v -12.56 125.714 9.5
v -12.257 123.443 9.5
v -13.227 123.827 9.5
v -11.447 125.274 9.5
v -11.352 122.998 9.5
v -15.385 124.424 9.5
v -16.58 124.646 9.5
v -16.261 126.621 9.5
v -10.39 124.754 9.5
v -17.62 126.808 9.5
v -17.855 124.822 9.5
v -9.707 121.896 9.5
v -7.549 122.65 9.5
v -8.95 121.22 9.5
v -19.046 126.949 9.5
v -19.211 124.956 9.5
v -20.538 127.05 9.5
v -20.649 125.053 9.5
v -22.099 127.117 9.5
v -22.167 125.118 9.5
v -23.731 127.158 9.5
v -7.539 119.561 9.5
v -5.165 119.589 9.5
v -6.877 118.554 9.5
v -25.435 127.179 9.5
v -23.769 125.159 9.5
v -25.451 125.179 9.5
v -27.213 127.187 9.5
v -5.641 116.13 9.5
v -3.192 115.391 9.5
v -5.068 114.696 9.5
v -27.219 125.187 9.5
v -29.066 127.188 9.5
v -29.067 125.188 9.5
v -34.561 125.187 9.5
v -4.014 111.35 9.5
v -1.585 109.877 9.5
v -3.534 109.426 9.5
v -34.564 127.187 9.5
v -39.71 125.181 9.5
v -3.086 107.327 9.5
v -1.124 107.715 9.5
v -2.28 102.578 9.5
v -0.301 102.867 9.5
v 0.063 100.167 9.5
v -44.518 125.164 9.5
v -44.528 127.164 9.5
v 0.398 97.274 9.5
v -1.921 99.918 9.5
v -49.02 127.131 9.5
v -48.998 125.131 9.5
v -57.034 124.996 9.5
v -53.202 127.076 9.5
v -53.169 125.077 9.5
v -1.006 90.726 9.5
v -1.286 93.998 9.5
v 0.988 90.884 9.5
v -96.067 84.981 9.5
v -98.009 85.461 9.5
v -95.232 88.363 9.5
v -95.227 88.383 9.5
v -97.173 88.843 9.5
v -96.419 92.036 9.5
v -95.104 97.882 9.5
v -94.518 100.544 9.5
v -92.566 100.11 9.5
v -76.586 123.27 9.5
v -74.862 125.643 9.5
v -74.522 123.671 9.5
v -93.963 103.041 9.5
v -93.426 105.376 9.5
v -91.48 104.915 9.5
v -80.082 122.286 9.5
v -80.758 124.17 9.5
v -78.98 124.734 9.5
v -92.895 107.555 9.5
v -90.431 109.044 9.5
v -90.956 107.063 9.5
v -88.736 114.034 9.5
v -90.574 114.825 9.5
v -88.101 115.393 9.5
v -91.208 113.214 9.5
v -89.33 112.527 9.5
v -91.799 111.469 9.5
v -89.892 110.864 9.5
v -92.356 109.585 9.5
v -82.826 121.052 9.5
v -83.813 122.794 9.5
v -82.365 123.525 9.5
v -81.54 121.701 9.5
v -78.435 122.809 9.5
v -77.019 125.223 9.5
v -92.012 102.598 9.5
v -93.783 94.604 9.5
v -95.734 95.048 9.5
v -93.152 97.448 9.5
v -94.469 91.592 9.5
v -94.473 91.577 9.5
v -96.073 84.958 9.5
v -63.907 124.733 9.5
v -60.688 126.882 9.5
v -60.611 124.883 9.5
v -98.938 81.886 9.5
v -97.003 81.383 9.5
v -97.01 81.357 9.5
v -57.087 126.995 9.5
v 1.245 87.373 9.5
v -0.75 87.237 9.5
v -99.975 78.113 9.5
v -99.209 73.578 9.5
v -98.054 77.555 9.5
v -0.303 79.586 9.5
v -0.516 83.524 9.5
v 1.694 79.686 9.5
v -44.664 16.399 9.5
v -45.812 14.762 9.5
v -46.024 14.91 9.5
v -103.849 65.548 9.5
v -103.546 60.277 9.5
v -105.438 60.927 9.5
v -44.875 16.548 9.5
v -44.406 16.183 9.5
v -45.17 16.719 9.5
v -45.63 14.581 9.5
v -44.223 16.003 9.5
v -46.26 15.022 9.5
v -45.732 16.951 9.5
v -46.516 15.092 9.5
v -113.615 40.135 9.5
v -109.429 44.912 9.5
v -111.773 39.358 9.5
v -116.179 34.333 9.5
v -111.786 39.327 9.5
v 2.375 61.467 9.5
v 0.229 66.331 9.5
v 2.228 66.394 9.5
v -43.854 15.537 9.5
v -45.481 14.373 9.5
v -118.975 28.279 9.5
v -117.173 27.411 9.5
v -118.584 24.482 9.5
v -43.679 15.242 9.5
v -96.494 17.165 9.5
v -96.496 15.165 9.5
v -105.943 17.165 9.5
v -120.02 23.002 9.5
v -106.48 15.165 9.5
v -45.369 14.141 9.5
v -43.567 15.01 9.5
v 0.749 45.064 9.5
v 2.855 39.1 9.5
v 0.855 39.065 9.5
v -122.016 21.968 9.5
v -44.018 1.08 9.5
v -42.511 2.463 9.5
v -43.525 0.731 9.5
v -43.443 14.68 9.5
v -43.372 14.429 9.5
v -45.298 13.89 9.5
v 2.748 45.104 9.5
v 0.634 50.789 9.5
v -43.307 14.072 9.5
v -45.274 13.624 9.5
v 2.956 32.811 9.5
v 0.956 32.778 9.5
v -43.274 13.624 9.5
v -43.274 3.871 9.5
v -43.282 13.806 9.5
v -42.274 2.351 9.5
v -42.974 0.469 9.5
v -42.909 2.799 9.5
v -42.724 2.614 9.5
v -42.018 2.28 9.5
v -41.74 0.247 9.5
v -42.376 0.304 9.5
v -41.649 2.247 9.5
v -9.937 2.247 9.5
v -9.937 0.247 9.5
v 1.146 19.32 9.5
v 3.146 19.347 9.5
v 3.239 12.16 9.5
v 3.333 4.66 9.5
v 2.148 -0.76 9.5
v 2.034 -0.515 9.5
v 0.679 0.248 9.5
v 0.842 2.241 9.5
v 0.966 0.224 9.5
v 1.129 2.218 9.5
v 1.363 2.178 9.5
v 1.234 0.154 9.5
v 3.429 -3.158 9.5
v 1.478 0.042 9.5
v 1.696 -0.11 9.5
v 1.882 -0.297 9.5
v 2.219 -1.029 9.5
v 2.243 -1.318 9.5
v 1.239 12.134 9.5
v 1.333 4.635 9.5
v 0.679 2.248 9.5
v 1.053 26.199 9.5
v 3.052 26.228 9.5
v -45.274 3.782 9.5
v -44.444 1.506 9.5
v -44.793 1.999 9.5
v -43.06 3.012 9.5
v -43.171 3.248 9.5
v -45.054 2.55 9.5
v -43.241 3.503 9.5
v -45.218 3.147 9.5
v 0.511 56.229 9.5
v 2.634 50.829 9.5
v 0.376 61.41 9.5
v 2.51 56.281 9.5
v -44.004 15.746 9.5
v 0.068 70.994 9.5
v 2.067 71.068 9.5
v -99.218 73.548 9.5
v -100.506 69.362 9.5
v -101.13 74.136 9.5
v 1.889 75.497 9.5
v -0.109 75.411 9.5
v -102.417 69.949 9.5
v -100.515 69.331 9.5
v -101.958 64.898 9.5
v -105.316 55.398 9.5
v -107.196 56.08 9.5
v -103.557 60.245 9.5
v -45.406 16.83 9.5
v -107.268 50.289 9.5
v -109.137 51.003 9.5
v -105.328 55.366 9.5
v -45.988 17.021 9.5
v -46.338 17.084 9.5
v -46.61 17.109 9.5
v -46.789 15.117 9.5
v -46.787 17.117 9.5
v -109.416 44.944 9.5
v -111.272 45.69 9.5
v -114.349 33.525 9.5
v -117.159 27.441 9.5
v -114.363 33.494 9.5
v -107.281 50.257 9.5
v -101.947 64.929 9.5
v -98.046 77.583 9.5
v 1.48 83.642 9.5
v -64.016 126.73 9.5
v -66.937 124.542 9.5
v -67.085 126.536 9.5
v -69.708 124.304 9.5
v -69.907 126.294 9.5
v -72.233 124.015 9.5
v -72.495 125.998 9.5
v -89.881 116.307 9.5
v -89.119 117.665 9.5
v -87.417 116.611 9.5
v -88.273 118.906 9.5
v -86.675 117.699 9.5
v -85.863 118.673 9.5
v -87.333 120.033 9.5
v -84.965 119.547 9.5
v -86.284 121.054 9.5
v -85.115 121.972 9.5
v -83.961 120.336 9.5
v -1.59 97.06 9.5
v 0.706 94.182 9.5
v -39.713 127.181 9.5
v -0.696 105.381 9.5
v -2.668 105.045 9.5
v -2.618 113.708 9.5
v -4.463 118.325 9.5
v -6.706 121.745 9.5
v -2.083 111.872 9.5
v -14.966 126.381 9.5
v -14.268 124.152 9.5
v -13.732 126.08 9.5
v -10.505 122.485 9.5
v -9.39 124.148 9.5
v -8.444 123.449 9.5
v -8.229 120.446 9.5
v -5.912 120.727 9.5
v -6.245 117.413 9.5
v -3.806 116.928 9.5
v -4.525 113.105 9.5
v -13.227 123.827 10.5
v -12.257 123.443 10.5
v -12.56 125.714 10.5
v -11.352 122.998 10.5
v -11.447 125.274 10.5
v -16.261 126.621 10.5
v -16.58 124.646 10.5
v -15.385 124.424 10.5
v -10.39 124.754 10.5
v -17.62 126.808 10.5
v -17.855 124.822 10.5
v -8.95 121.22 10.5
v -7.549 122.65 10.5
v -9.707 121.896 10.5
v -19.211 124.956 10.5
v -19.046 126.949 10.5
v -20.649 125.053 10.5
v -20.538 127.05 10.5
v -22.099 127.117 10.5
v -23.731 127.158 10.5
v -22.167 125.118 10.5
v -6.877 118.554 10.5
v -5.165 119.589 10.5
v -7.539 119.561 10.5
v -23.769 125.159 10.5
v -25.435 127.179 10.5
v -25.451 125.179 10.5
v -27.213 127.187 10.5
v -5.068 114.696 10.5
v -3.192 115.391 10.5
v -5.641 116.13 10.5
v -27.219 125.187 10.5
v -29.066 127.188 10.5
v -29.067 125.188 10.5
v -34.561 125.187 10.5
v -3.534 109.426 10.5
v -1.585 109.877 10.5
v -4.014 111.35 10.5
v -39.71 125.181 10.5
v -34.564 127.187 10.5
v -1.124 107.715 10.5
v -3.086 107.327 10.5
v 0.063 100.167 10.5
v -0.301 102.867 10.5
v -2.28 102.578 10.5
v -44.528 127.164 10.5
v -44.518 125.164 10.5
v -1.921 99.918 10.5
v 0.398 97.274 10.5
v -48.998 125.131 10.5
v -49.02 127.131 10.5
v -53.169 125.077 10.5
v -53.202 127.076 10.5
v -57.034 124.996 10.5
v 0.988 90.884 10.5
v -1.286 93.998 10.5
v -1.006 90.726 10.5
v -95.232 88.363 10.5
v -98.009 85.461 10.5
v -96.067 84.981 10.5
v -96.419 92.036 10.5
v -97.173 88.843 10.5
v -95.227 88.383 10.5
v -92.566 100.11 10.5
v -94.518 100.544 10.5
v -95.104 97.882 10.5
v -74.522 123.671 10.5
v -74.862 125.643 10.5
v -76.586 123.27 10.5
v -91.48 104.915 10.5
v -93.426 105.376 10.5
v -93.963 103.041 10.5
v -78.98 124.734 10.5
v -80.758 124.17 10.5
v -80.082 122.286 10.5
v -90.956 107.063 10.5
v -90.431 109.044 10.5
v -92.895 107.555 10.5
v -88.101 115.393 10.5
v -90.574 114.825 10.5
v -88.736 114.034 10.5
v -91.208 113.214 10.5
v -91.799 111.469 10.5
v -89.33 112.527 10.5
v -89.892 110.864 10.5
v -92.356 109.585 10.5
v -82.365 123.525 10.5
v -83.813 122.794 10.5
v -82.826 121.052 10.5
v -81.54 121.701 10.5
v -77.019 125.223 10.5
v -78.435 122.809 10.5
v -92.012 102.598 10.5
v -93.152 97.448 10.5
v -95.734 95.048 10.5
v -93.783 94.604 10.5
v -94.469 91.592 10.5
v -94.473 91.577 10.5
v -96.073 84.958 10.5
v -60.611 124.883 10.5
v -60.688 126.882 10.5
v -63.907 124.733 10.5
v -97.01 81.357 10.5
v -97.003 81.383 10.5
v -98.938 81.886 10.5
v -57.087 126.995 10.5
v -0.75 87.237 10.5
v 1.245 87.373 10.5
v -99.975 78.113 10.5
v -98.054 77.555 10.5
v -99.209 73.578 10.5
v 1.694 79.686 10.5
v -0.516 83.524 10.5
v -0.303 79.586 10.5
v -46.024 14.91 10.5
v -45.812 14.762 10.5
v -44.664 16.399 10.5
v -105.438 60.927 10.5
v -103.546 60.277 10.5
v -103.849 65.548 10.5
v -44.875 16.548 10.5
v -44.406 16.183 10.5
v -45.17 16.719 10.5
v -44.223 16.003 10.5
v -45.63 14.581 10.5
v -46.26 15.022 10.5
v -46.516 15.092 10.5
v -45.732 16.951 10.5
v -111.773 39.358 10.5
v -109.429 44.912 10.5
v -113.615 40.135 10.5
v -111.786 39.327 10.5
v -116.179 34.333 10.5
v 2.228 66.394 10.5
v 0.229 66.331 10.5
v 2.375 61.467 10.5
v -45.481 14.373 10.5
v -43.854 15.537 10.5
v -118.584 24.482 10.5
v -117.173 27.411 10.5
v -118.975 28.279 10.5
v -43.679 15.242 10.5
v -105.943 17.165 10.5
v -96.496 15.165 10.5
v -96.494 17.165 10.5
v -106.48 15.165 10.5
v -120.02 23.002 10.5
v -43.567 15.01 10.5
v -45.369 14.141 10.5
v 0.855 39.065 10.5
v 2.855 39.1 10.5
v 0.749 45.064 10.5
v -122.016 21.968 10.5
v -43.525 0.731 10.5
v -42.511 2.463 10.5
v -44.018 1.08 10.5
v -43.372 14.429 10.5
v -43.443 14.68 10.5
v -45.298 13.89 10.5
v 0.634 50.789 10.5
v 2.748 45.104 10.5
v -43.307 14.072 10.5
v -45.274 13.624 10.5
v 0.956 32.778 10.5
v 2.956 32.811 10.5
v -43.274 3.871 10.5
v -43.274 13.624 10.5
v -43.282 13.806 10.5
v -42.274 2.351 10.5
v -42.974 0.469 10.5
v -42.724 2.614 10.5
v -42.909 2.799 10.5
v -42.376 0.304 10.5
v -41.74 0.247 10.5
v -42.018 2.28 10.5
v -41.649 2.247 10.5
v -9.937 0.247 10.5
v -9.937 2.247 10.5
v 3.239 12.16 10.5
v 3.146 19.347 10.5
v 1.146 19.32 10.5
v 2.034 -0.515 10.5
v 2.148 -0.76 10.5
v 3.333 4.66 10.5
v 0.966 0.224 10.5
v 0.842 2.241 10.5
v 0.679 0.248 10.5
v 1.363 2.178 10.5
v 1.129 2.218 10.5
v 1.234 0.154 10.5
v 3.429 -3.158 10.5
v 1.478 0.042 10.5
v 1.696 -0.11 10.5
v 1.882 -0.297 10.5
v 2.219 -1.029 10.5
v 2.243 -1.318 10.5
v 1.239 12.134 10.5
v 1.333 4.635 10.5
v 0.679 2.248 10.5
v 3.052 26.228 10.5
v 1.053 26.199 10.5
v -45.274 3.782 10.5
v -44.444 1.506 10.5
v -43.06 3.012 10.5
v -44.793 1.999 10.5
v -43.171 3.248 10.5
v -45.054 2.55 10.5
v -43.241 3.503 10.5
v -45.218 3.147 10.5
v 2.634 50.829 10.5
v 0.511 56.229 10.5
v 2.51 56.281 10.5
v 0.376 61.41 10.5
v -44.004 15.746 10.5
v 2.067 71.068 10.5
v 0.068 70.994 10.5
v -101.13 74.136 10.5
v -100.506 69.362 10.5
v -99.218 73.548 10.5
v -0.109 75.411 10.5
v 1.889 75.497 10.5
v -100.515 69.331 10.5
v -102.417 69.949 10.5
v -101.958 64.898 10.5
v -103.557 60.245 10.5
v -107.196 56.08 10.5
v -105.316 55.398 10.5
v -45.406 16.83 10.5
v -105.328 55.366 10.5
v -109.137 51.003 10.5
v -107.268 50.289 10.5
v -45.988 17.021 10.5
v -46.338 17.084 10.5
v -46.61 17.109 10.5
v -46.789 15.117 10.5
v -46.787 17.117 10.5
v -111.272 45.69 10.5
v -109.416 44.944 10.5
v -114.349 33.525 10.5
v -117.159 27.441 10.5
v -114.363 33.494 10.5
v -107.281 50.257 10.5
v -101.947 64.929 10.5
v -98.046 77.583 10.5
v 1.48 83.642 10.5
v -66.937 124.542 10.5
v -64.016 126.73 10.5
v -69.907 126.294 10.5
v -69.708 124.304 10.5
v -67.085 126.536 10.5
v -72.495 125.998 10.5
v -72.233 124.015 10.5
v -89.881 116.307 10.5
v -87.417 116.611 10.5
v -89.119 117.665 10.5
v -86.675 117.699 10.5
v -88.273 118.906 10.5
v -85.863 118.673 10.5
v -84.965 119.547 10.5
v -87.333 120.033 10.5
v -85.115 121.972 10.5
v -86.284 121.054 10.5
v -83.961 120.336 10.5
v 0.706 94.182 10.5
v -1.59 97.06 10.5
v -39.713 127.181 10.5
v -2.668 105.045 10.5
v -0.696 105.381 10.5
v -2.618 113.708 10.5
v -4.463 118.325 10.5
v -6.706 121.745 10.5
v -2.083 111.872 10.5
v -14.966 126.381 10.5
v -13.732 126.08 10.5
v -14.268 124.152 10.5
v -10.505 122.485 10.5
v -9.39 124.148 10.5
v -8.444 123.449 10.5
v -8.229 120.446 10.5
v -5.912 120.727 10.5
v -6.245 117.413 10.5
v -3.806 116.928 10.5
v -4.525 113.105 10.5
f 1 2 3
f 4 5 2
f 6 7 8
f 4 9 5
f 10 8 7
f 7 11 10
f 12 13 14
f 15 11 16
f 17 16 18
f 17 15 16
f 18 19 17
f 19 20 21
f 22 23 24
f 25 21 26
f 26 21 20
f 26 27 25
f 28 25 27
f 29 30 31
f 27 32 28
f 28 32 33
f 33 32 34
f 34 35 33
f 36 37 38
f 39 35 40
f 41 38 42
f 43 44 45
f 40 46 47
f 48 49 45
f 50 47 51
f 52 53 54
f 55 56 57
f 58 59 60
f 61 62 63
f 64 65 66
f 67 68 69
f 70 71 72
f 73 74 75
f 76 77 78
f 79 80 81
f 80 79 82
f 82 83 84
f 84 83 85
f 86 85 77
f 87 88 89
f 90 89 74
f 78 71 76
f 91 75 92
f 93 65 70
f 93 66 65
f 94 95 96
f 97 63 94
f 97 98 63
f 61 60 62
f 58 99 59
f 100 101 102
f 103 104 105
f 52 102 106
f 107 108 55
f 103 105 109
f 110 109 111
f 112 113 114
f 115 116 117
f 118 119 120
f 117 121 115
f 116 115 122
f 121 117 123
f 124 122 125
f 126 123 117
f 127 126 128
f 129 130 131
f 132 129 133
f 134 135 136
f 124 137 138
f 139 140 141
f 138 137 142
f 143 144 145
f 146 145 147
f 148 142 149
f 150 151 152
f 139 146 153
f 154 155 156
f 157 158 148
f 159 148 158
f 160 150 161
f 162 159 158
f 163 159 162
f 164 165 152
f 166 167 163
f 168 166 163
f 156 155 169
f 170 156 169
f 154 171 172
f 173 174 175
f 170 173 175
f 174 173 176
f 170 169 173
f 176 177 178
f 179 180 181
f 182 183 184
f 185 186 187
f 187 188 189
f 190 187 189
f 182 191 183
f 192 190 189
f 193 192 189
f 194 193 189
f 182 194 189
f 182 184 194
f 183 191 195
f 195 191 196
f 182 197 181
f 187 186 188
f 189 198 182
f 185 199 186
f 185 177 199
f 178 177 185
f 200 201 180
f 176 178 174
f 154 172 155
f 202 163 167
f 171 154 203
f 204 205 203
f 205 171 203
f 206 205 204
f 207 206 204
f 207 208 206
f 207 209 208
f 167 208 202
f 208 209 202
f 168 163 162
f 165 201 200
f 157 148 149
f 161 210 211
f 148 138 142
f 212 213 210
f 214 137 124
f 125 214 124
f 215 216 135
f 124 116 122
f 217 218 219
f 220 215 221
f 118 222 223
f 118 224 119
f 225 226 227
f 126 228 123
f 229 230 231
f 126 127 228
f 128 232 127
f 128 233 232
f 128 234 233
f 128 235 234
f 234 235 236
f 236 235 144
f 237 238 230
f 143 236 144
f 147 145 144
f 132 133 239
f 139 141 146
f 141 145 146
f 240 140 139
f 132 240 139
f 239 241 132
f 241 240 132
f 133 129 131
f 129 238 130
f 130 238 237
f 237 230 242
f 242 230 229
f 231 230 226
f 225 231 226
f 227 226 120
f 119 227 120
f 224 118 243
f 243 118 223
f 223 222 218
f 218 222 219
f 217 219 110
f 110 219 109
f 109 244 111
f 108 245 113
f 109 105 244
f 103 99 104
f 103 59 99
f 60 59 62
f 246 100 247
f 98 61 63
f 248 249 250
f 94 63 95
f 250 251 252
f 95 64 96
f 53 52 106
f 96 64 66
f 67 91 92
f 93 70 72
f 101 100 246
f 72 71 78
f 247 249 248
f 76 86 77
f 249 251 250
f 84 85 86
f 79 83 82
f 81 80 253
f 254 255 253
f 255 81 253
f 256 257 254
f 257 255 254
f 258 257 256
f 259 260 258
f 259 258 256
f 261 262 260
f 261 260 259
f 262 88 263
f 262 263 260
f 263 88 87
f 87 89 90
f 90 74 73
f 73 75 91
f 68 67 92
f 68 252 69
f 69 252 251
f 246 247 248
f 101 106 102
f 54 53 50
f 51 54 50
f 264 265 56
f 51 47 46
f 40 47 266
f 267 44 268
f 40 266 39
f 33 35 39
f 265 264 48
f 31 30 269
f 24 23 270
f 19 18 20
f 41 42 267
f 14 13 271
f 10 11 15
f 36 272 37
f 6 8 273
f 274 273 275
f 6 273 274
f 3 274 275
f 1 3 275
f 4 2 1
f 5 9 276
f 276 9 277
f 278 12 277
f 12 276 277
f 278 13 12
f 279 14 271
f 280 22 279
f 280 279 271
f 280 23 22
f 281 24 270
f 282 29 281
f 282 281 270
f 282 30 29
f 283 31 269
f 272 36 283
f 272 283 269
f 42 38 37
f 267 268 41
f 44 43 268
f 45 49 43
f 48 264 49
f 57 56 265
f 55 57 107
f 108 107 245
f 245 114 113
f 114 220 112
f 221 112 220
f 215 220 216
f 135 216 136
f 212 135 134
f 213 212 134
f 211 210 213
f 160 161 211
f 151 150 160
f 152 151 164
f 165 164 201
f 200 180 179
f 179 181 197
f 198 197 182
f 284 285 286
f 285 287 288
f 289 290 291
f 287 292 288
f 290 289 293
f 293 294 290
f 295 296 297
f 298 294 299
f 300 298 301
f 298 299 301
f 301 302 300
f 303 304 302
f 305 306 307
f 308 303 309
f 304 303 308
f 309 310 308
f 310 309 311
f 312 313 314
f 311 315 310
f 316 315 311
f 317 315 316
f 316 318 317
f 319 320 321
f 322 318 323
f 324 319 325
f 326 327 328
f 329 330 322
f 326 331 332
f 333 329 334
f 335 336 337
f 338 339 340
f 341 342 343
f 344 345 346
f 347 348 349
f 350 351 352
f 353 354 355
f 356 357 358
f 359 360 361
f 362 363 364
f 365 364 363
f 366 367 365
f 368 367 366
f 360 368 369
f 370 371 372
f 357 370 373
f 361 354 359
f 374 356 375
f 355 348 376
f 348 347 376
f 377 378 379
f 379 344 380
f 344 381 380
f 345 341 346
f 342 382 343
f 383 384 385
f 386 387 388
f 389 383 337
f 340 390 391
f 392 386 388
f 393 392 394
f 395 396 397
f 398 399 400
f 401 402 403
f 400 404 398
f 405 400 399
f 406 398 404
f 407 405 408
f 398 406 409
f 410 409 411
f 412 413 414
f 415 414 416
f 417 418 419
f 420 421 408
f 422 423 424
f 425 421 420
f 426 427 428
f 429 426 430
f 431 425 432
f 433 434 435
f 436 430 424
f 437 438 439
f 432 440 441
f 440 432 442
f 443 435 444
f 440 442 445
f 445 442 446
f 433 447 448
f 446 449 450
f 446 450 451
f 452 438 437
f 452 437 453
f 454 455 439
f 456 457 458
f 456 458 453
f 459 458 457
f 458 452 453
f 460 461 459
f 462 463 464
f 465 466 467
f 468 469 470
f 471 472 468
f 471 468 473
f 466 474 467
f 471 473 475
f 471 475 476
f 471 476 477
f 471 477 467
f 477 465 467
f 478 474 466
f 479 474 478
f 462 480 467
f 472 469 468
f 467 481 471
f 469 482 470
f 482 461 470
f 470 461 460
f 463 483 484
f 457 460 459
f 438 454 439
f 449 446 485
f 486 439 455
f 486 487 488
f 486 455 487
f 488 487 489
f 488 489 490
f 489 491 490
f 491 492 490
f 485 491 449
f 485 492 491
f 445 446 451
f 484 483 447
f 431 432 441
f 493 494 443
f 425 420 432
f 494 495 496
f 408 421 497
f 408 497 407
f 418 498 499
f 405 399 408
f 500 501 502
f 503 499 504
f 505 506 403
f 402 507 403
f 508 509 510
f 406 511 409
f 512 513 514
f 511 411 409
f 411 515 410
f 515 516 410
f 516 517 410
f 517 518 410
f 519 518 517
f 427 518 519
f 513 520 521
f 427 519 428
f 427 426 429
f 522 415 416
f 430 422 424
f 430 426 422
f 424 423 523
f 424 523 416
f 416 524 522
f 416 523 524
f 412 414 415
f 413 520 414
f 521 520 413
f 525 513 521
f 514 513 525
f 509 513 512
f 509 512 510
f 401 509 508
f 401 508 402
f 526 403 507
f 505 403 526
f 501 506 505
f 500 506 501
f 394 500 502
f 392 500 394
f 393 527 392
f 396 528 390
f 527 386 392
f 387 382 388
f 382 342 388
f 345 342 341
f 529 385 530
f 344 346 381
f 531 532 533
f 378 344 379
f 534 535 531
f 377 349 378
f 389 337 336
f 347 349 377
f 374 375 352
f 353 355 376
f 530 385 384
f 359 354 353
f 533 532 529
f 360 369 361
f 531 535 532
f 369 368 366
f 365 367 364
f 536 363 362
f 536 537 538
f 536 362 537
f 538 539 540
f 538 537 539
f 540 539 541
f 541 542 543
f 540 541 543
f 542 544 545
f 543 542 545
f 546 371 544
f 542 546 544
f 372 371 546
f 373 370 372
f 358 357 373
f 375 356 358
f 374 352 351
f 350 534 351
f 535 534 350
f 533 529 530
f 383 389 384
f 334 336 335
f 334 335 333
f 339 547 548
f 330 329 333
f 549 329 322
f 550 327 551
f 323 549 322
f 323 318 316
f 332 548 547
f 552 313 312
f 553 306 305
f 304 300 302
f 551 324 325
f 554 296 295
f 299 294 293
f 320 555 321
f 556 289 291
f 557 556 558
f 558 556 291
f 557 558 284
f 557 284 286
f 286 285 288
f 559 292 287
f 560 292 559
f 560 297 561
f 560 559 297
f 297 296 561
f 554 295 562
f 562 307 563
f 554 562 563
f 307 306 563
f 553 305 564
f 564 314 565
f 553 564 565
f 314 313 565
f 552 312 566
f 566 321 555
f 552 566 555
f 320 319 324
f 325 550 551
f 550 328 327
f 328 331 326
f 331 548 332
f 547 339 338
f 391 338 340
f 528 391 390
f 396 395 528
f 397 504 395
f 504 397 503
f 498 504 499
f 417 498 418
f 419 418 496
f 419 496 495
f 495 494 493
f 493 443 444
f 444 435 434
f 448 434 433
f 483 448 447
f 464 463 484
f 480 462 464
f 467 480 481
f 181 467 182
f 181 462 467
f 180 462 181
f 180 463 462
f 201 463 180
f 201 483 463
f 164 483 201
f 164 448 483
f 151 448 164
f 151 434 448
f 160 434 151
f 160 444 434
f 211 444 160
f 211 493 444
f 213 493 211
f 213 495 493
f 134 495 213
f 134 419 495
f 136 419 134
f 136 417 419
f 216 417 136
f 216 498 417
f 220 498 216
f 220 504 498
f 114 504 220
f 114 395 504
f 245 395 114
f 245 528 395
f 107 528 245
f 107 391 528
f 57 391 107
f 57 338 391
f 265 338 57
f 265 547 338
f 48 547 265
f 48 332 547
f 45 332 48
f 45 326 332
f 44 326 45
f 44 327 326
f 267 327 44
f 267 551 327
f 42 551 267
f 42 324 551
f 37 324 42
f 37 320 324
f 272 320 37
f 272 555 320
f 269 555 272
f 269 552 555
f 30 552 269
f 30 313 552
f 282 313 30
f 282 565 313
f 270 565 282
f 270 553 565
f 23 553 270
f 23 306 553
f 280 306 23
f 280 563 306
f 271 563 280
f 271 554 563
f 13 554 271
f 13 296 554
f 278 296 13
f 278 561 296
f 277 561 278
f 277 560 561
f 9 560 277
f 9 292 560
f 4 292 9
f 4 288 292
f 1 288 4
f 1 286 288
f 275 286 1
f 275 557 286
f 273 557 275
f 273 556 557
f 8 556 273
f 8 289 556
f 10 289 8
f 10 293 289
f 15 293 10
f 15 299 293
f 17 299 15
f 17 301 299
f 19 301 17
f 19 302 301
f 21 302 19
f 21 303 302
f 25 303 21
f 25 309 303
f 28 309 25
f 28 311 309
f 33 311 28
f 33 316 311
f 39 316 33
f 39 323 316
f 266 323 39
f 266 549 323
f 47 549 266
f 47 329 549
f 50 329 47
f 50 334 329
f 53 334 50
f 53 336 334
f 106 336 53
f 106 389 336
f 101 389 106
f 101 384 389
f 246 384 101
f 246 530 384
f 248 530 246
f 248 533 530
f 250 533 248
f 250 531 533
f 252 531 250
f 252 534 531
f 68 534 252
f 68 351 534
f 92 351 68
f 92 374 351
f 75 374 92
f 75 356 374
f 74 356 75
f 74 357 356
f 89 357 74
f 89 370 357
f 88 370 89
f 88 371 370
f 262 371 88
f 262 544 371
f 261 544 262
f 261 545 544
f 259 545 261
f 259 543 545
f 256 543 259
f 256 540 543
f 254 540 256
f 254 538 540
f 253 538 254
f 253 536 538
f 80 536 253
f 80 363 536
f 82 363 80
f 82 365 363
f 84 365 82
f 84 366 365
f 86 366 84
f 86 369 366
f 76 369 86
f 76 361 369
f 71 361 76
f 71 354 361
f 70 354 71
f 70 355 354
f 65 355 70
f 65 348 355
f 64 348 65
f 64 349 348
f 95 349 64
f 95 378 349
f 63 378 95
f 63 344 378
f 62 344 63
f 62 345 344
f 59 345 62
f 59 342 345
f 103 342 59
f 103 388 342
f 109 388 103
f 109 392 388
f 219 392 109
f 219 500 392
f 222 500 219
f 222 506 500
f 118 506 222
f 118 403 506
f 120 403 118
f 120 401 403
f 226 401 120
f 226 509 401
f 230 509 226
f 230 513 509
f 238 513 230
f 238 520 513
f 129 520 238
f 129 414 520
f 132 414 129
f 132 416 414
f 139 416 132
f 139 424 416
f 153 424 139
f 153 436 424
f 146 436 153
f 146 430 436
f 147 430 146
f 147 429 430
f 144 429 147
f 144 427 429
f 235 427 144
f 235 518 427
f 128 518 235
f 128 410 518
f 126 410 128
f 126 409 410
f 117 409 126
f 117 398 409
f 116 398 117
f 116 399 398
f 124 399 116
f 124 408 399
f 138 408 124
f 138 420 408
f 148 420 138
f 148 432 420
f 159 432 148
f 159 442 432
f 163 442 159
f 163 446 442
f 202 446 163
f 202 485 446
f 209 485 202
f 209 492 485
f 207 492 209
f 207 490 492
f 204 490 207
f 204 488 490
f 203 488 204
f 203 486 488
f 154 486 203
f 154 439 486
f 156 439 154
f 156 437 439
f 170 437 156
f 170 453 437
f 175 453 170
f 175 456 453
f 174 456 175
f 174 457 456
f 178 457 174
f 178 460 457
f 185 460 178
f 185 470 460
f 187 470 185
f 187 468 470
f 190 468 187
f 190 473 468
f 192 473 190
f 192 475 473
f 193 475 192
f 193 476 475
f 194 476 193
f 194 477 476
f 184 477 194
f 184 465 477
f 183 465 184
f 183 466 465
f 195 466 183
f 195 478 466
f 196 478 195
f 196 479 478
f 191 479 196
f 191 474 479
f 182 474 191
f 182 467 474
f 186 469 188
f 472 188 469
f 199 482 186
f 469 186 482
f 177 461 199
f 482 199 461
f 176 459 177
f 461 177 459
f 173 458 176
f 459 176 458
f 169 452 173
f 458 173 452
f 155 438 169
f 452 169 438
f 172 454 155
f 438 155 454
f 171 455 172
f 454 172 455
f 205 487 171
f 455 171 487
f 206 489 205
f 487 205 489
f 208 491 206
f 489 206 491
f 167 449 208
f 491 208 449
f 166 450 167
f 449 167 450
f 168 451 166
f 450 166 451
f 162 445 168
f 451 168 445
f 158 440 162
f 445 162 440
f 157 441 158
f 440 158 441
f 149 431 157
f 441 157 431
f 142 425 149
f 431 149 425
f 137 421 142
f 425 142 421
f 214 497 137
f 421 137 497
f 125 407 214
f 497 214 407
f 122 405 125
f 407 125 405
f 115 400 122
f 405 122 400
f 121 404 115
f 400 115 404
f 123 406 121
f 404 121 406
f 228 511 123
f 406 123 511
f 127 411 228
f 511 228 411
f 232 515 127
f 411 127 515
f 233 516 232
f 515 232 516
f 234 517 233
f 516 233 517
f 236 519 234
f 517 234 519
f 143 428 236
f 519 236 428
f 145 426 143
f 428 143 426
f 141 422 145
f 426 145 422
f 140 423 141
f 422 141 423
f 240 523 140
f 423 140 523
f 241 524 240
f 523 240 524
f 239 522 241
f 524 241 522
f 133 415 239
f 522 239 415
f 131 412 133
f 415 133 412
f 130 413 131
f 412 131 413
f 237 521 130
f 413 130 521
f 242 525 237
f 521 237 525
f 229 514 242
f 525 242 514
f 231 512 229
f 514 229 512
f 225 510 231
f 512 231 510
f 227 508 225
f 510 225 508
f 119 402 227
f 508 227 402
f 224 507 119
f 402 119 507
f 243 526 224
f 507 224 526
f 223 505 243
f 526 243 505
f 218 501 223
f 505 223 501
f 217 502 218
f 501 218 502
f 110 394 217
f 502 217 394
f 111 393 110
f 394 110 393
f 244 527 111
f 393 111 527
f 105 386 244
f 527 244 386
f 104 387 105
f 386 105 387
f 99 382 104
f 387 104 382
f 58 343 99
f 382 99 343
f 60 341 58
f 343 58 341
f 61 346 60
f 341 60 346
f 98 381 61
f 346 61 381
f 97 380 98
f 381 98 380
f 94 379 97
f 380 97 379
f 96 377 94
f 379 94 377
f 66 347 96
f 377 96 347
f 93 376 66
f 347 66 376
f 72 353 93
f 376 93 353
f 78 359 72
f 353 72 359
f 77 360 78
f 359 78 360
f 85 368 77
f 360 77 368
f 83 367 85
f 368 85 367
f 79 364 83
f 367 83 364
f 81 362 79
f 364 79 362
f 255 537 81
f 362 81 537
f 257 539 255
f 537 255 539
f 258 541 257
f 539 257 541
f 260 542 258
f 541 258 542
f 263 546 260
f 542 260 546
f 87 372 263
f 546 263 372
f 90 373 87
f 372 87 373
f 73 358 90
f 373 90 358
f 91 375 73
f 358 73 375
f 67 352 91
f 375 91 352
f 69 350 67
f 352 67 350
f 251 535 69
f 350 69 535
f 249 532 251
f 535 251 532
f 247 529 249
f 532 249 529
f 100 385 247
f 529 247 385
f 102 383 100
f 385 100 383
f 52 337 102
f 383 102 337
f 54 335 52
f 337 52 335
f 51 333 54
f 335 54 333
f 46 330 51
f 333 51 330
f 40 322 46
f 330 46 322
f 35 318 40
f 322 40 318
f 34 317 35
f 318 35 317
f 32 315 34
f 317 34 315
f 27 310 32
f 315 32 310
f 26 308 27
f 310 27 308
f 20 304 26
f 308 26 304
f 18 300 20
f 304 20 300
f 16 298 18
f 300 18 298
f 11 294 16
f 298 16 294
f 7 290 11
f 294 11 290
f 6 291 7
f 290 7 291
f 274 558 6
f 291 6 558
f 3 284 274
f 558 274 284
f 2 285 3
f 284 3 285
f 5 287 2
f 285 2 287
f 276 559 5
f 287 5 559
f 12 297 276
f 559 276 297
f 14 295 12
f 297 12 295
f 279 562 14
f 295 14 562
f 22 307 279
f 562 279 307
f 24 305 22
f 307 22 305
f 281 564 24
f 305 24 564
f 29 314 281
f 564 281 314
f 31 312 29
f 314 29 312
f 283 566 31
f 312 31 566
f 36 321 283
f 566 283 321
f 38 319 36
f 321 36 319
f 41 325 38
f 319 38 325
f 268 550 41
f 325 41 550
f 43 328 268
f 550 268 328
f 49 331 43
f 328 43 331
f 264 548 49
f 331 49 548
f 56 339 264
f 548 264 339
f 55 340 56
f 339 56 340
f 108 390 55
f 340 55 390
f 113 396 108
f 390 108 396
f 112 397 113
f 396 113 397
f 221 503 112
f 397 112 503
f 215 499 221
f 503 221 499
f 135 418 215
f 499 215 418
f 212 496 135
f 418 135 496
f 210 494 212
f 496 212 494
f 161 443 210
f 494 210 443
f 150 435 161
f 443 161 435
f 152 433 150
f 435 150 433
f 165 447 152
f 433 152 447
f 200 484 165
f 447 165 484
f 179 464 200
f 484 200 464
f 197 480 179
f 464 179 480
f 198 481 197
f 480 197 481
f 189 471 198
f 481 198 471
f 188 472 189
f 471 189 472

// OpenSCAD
// file: ../bezier.scad
function mix(p1, p2, t) = [p1[0] * (1 - t) + p2[0] * t, p1[1] * (1 - t) + p2[1] * t];

function bezier_point(p, t) =
    let (
        a = mix(p[0], p[1], t),
        b = mix(p[1], p[2], t),
        c = mix(p[2], p[3], t),
        d = mix(a, b, t),
        e = mix(b, c, t)
    )
    mix(d, e, t);

function bezier_points(p, N) = [
    for (i = [0 : N - 1]) bezier_point(p, i / (N - 1))
];
// file: ../profiles.scad
include <array_ops.scad>
include <bezier.scad>

n_corner_points = 10;

board_profile_points = concat(
    [[-119.504642, 22.529083], [-106.09824, 14.768994],
        [-106.09824, 14.768994], [-96.213288, 14.768994],
        [-96.213288, 14.768994], [-46.99839, 14.721548]],
bezier_points(
    [[-46.99839, 14.721548], [-46.16894, 14.721172], [-45.497997, 14.049582], [-
45.498384, 13.243936]], n_corner_points),
    [[-45.498384, 13.243936], [-45.498384, 3.499618]],
bezier_points(
    [[-45.498384, 3.499618], [-45.499493, 1.567921], [-43.9343, 0.00093], [-41.998735, -
0.000898]],
n_corner_points),
    [[-41.998735, -0.000898], [-10.510735, -0.000898],
        [-10.510735, -0.000898], [0, 0]],
bezier_points(
    [[0, 0], [0.876629, 0.003368], [1.548207, -0.667575], [1.548595, -1.550011]],
n_corner_points),
    [[1.548595, -1.550011], [1.548595, -77.305898]],
bezier_points(
    [[1.548595, -77.305898], [1.498595, -80.815755], [-24.536412, -83.655898], [-
56.710735, -83.655898]], n_corner_points),
    [[-56.710735, -83.655898], [-114.910735, -83.655898],
        [-114.910735, -83.655898], [-139.974397, -83.655898]],
bezier_points(
    [[-139.974397, -83.655898], [-140.553969, -83.655567], [-141.023536, -83.185462], [-
141.023875, -82.60589]], n_corner_points),
    [[-141.023875, -82.60589], [-141.023875, -32.15045]],
bezier_points(
    [[-141.023875, -32.15045], [-140.847733, -17.594028], [-137.053996, -6.226473], [-
133.968073, -0.510408]], n_corner_points),
    [[-133.968073, -0.510408], [-120.242566, 22.844102]]
);

wrist_support_top_points = concat(
    [[-119.504642, 22.529083], [-106.09824, 14.768994],
        [-106.09824, 14.768994], [-96.213288, 14.768994],
        [-96.213288, 14.768994], [-46.99839, 14.721548]],
bezier_points(
    [[-46.99839, 14.721548], [-46.16894, 14.721172], [-45.497997, 14.049582], [-
45.498384, 13.243936]], n_corner_points),
    [[-45.498384, 13.243936], [-45.498384, 3.499618]],
bezier_points(
    [[-45.498384, 3.499618], [-45.499493, 1.567921], [-43.9343, 0.00093], [-41.998735, -
0.000898]],
n_corner_points),
    [[-41.998735, -0.000898], [-10.510735, -0.000898],
        [-10.510735, -0.000898], [0, 0]],
bezier_points(
    [[0, 0], [0.876629, 0.003368], [1.548207, -0.667575], [1.548595, -1.550011]],
n_corner_points
)
);

board_top_points = concat(
    [[1.548595, -1.550011], [1.548595, -77.305898]],
bezier_points(
    [[1.548595, -77.305898], [1.498595, -80.815755], [-24.536412, -83.655898], [-
56.710735, -83.655898]], n_corner_points),
    [[-56.710735, -83.655898], [-114.910735, -83.655898],
        [-114.910735, -83.655898], [-139.974397, -83.655898]],
bezier_points(
    [[-139.974397, -83.655898], [-140.553969, -83.655567], [-141.023536, -83.185462], [-
141.023875, -82.60589]], n_corner_points),
    [[-141.023875, -82.60589], [-141.023875, -32.15045]],
bezier_points(
    [[-141.023875, -32.15045], [-140.847733, -17.594028], [-137.053996, -6.226473], [-
133.968073, -0.510408]], n_corner_points),
    [[-133.968073, -0.510408], [-120.242566, 22.844102]]
);

wrist_support_bottom_points = concat(
bezier_points(
    [
        [-120.242566, 22.844102],
        [-70, 125],
        [-120, 125],
        [-30, 125]
    ], n_corner_points * 5),
bezier_points(
    [
        [-30, 125],
        [0, 125],
        [0, 125],
        [1.548595, -1.550011]
    ], n_corner_points * 5)
);

case_profile_points = concat(
board_top_points,
wrist_support_bottom_points
);
// file: ../array_ops.scad
function reverse(arr) = [
    for (i = [1:len(arr)]) arr[len(arr) - i]
    ];

function translate2d(arr, tr) = [
    for (point = arr) [point[0] + tr[0], point[1] + tr[1]]
    ];

function scale2d(arr, factor, centerpoint) = [
    for (point = arr) [
                (point[0] - centerpoint[0]) * factor + centerpoint[0],
                (point[1] - centerpoint[1]) * factor + centerpoint[1],
        ]
    ];

function scale2d_multi(arr, factors, centerpoint) = [
    for (point = arr) [
                (point[0] - centerpoint[0]) * factors[0] + centerpoint[0],
                (point[1] - centerpoint[1]) * factors[1] + centerpoint[1],
        ]
    ];

function sum(v) = [for (p = v) 1] * v;

function get_center_point(points) =
    [
        sum([for (p = points) p[0]]) / len(points),
        sum([for (p = points) p[1]]) / len(points),
    ];
// file: ../config.scad
// Constants
choc_scale = [0.95315, 0.91];

// Case properties
outer_scale_margin = 0.02; // how thick the walls are
keyboard_hole_scale_margin = 0.005; // how tight the keyboard sits in the housing

// Orientation
rotation = [10, 10, 170];
translation = [-160, 0, 25];
// file: ../stand.scad
include <profiles.scad>

module base_volume(profile_points, outer_scale_margin, rotation, translation) {
    center_point = get_center_point(profile_points);
    linear_extrude(height = 120)
        projection(cut = false)
            translate(translation)
                rotate(rotation)
                    linear_extrude(height = 0.1)
                        translate([center_point[0], center_point[1], 0])
                            scale([1 + outer_scale_margin, 1 + outer_scale_margin, 1])
                                translate([-center_point[0], -center_point[1], 0])
                                    polygon(profile_points);
};

module legs(profile_points) {
    min_x = min([for (p = profile_points) p[0]]);
    min_y = min([for (p = profile_points) p[1]]);
    max_x = max([for (p = profile_points) p[0]]);
    max_y = max([for (p = profile_points) p[1]]);

    width = 15;
    thickness = 1.5;

    translate([translation[0], translation[1], 0])
        rotate([0, 0, rotation[2]])
            translate([min_x, min_y])
                cube([200, width, thickness]);

    translate([translation[0], translation[1] + width, 0])
        rotate([0, 0, rotation[2]])
            translate([min_x, max_y])
                cube([200, width, thickness]);

    translate([translation[0], translation[1] + width, 0])
        rotate([0, 0, rotation[2]])
            translate([min_x, 0.5 * (min_y + max_y)])
                cube([200, width, thickness]);


};

module keyboard_base(profile_points, outer_scale_margin, rotation, translation) {

    intersection() {
        legs(profile_points = profile_points);
        base_volume(
        profile_points = profile_points,
        outer_scale_margin = outer_scale_margin + 0.02,
        rotation = rotation,
        translation = translation
        );
    }

    difference() {
        base_volume(
        profile_points = profile_points,
        outer_scale_margin = outer_scale_margin + 0.02,
        rotation = rotation,
        translation = translation
        );
        translate([0, 0, -0.1])
            base_volume(
            profile_points = profile_points,
            outer_scale_margin = outer_scale_margin - 0.03,
            rotation = rotation,
            translation = translation
            );

        translate(translation)
            rotate(rotation)
                translate([-500, -500, 5])
                    cube([1000, 1000, 1000]);

        translate(translation)
            rotate(rotation)
                keyboard_body(profile_points, 100, outer_scale_margin);

        translate(translation)
            rotate(rotation)
                case_holes(rad_extra = 0.1);
    };
};
// file: ../housing.scad
include <array_ops.scad>
include <profiles.scad>
include <config.scad>

$fn = 50;

module board_with_thickenss(points) {
    linear_extrude(height = 2)
        polygon(points);
};

module keyboard_space(
profile_points,
bottom_thickenss,
case_height,
scale_margin,
eps = 0.01
) {
    center_point = get_center_point(profile_points);
    translate([0, 0, bottom_thickenss])
        linear_extrude(height = case_height - bottom_thickenss + eps)
            translate([center_point[0], center_point[1], 0])
                scale([1 + scale_margin, 1 + scale_margin, 1])
                    translate([-center_point[0], -center_point[1], 0])
                        polygon(profile_points);
};


module flat_keyboard_body(profile_points, case_height, scale_margin) {
    center_point = get_center_point(profile_points);
    linear_extrude(height = case_height)
        translate([center_point[0], center_point[1], 0])
            scale([1 + scale_margin, 1 + scale_margin, 1])
                translate([-center_point[0], -center_point[1], 0])
                    polygon(profile_points);
};

module keyboard_body(profile_points, case_height, scale_margin) {
    min_x = min([for (p = profile_points) p[0]]);
    max_y = max([for (p = profile_points) p[1]]);

    cylinder_rad = 20;

    difference()
        {
            flat_keyboard_body(profile_points, case_height, scale_margin);
            translate([min_x, max_y - cylinder_rad, -0.1])
                cube(size = [200, cylinder_rad * 2, cylinder_rad * 2]);
        };

    intersection() {
        flat_keyboard_body(profile_points, case_height, scale_margin);
        translate([min_x, max_y - cylinder_rad / 2, case_height - cylinder_rad])
            rotate([0, 90, 0])
                {
                    cylinder(200, cylinder_rad, cylinder_rad, $fn = 100);
                    translate([-cylinder_rad, -cylinder_rad, 0])
                        cube([cylinder_rad, cylinder_rad, 200]);
                }
    }
};


function scale_wrist_support_points(
top_points, bottom_points, outer_scale, board_scale, case_center, board_center
) = concat(
scale2d(bottom_points, outer_scale, case_center),
scale2d(top_points, board_scale, board_center)
);

module case_hole(hole_height, hole_rad, hull_length) {
    linear_extrude(hole_height)
        hull() {
            translate([hull_length, 0, 0])
                circle(r = hole_rad);
            circle(r = hole_rad);
        };
};

module case_holes(rad_extra = 0) {
    hole_height = 10;
    hole_rad = 8 + rad_extra;
    side_hull_length = 26;
    front_hull_length = 23;
    translate([-148, -90, 10])
        rotate([90, 00, 90])
            case_hole(
            hole_height = hole_height,
            hole_rad = hole_rad,
            hull_length = side_hull_length
            );
    translate([-145, -80, 10])
        rotate([90, 00, 0])
            case_hole(
            hole_height = hole_height,
            hole_rad = hole_rad,
            hull_length = front_hull_length
            );
};

module case(board_points, case_points) {
    case_height = 10;
    bottom_thickenss = 1;
    difference() {
        keyboard_body(
        profile_points = case_points,
        case_height = case_height,
        scale_margin = outer_scale_margin
        );
        keyboard_space(
        profile_points = board_points,
        bottom_thickenss = bottom_thickenss,
        case_height = case_height,
        scale_margin = keyboard_hole_scale_margin
        );
        case_holes();
    };

};

module wrist_cushion(
top_points, bottom_points, outer_scale, board_scale, case_center, board_center
) {
    height = 1;
    board_height = 10;
    inset = 0.99;

    wrist_support_points_outer = scale_wrist_support_points(
    top_points,
    bottom_points,
    outer_scale,
    board_scale,
    case_center,
    board_center
    );
    translate([0, 0, board_height - height / 2])
        linear_extrude(height)
            offset(-2)
                polygon(wrist_support_points_outer);
};

module wrist_cushion_template(
top_points, bottom_points, outer_scale, board_scale, case_center, board_center
) {
    height = 1;
    board_height = 10;
    inset = 0.99;

    wrist_support_points_outer = scale_wrist_support_points(
    top_points,
    bottom_points,
    outer_scale,
    board_scale,
    case_center,
    board_center
    );
    translate([0, 0, board_height - height / 2])
        linear_extrude(height)
            difference() {
                polygon(wrist_support_points_outer);
                offset(-2)
                    polygon(wrist_support_points_outer);
            }

};
// main file
include <../housing.scad>
include <../stand.scad>
include <../config.scad>

wrist_cushion_template(
top_points = reverse(wrist_support_top_points),
bottom_points = wrist_support_bottom_points,
outer_scale = 1.03,
board_scale = 1.01,
case_center = get_center_point(case_profile_points),
board_center = get_center_point(board_profile_points)
);
